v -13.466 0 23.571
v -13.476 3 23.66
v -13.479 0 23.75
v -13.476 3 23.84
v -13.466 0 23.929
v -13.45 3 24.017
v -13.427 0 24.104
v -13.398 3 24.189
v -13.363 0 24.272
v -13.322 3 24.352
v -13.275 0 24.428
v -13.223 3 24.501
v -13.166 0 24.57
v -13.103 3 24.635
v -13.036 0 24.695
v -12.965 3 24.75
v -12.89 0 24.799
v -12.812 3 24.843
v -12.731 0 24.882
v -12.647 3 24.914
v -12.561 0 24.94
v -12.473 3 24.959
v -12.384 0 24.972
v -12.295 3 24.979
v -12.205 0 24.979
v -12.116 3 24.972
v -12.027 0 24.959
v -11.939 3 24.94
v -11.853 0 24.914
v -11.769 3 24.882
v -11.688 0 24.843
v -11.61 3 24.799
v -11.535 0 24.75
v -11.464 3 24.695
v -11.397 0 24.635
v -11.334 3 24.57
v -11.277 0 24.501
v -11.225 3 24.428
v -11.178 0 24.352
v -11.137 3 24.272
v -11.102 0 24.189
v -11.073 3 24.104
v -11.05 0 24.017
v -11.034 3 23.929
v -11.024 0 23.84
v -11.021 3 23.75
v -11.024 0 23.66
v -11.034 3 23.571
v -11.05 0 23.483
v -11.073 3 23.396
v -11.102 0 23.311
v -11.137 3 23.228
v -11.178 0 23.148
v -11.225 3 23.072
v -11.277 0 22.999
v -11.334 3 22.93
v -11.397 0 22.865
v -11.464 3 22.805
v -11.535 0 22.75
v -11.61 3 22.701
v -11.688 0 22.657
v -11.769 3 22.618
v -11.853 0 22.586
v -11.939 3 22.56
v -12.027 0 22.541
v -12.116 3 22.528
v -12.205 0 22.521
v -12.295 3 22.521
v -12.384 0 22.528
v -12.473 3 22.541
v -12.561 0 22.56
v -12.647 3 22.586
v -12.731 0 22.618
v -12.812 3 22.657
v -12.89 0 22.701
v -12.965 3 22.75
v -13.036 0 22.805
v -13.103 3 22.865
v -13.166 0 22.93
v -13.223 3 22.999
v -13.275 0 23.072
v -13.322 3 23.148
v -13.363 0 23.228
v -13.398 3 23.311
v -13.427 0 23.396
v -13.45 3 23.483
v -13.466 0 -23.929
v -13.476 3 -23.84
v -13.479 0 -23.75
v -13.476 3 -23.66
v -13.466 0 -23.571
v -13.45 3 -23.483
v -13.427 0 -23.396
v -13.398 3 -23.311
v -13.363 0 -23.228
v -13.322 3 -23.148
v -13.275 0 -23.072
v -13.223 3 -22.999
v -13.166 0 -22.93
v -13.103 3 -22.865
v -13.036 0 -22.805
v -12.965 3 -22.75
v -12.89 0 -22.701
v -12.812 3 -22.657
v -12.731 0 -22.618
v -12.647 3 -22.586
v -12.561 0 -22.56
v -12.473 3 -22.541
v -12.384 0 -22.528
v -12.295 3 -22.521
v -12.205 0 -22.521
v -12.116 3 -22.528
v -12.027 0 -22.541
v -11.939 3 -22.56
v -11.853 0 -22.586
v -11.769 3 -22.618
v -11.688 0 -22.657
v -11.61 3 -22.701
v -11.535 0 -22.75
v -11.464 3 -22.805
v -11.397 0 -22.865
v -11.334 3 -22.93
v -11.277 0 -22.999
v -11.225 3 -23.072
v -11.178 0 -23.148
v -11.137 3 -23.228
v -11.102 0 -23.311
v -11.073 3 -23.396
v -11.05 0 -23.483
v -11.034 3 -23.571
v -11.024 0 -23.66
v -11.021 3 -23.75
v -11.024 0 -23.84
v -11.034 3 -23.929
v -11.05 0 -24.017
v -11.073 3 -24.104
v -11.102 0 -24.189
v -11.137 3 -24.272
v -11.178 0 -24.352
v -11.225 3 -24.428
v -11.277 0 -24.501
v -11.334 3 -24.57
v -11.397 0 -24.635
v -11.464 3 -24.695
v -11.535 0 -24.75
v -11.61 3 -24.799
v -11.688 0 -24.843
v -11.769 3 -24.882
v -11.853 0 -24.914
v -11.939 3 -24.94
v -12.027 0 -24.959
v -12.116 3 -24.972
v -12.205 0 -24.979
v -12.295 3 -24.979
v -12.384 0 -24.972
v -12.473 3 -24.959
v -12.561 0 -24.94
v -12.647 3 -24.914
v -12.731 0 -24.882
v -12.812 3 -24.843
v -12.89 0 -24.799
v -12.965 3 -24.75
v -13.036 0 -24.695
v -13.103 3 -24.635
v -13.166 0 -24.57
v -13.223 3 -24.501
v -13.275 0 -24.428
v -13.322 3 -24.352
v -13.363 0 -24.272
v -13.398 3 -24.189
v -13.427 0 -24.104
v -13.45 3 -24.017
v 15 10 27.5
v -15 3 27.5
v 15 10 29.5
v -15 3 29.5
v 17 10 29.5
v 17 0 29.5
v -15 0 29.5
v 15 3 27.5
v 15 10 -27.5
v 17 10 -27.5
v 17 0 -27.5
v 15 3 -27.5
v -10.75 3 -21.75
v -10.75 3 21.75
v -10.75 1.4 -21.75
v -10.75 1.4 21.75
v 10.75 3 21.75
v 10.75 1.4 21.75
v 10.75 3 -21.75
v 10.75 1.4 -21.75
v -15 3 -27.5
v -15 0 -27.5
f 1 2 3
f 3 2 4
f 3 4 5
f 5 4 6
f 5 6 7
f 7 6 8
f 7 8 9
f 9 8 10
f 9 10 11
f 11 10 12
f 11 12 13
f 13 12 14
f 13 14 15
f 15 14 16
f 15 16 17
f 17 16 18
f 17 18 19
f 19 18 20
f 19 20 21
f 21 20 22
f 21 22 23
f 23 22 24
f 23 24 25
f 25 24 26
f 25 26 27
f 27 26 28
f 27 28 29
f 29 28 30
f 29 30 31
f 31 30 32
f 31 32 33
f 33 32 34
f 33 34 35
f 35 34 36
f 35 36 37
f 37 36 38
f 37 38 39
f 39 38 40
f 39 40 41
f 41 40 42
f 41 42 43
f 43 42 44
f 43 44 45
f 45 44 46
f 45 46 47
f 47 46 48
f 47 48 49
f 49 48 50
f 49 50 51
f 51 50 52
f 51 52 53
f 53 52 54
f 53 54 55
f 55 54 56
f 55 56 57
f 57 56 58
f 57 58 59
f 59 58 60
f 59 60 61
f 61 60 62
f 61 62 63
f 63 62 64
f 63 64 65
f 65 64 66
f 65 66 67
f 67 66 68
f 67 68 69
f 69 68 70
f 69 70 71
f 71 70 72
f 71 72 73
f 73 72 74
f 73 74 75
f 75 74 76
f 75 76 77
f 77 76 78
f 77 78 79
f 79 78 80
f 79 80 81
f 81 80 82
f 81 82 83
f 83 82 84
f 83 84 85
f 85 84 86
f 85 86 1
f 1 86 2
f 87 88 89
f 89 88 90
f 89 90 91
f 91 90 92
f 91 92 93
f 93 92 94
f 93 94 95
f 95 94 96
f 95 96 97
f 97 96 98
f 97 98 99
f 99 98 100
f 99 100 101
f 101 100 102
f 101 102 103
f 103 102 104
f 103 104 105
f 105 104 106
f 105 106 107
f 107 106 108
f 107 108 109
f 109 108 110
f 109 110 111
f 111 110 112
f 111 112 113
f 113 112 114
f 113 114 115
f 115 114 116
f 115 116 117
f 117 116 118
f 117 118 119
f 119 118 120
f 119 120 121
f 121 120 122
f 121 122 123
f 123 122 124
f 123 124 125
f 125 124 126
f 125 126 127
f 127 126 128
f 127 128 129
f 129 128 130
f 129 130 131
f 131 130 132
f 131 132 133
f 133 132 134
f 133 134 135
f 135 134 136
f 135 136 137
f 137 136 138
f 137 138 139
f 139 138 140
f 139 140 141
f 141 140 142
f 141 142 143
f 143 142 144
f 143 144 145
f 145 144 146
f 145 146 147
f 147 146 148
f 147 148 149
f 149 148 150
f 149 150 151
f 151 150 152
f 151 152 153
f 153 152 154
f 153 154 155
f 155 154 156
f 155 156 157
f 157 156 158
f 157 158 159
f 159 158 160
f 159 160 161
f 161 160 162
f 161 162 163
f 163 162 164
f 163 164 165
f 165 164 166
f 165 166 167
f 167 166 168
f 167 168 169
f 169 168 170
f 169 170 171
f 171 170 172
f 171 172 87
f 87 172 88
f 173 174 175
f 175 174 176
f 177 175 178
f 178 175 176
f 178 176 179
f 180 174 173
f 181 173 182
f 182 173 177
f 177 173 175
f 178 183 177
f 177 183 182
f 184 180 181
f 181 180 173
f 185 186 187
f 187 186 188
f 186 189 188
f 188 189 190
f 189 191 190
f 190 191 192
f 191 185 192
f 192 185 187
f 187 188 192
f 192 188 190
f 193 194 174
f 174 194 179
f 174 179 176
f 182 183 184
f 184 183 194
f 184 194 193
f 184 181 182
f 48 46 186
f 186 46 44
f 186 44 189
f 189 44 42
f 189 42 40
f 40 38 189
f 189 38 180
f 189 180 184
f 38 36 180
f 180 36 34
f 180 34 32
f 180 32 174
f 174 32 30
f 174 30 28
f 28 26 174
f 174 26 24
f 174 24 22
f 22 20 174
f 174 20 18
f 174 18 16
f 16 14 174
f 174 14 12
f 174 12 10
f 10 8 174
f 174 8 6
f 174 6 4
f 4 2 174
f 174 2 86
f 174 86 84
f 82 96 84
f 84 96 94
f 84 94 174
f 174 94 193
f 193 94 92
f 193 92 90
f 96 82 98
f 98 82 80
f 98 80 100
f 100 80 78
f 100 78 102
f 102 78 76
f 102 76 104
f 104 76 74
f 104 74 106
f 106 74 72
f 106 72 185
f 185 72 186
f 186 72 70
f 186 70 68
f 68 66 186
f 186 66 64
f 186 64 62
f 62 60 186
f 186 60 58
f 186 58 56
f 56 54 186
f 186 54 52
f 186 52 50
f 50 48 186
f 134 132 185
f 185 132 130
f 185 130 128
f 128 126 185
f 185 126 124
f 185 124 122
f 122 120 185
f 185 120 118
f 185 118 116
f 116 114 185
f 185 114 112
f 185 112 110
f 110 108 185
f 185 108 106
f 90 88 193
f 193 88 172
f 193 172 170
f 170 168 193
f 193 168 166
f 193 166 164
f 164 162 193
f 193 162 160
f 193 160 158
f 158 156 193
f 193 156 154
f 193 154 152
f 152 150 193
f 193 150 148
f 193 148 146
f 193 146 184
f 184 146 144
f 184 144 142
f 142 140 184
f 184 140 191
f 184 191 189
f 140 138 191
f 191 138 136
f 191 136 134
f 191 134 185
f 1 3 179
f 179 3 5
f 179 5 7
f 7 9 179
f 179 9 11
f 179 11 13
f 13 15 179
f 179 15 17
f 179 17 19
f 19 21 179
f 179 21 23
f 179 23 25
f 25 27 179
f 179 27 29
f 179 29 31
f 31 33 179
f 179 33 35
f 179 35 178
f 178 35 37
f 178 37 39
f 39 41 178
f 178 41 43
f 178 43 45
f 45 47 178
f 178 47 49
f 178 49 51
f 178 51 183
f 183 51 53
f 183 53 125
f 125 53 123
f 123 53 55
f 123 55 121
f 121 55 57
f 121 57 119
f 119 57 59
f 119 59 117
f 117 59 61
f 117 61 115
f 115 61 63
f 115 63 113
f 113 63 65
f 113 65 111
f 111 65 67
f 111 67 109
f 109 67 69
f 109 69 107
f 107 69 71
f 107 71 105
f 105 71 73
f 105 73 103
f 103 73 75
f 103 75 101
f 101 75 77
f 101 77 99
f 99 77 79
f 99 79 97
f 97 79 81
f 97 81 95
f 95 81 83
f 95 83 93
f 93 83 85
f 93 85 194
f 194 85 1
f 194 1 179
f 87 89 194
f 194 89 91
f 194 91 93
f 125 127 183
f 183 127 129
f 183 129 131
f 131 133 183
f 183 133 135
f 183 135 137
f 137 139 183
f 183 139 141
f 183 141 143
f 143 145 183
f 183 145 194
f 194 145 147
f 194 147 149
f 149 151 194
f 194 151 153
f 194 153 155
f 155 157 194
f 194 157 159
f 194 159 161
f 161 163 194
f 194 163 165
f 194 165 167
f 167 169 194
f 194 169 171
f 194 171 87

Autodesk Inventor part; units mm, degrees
ref_plane "YZ Plane" through (0, 0, 0) normal (1, 0, 0) x (0, 1, 0)
ref_plane "XZ Plane" through (0, 0, 0) normal (0, 1, 0) x (-1, 0, 0)
ref_plane "XY Plane" through (0, 0, 0) normal (0, 0, 1) x (1, 0, 0)
sketch "Sketch1" plane through (0, 0, 0) normal (0, 1, 0) x (-1, 0, 0)
  line L0 (-15, -27.5) -> (15, -27.5)
  line L1 (15, -27.5) -> (15, 27.5)
  line L2 (15, 27.5) -> (-15, 27.5)
  line L3 (-15, 27.5) -> (-15, -27.5)
  line L4 (-15, -27.5) -> (15, 27.5) construction
  line L5 (15, -27.5) -> (-15, 27.5) construction
  point P0 (0, 0)
  dimension "d0" = 55
  dimension "d1" = 30
extrude "Extrusion1" add sketch "Sketch1" along normal blind 3
sketch "Sketch2" plane through (0, 3, 0) normal (0, 1, 0) x (1, 0, 0)
  line L0 (10.75, 21.75) -> (-10.75, 21.75)
  line L1 (-10.75, 21.75) -> (-10.75, -21.75)
  line L2 (-10.75, -21.75) -> (10.75, -21.75)
  line L3 (10.75, -21.75) -> (10.75, 21.75)
  line L4 (10.75, 21.75) -> (-10.75, -21.75) construction
  line L5 (-10.75, 21.75) -> (10.75, -21.75) construction
  point P0 (0, 0)
  dimension "d4" = 43.5
  dimension "d5" = 21.5
extrude "Extrusion2" cut sketch "Sketch2" against normal blind 1.6
sketch "Sketch3" plane through (15, 0, 27.5) normal (1, 0, 0) x (0, 0, -1)
  line L0 (55, 0) -> (0, 0) projected
  line L1 (0, 0) -> (55, 0)
  line L2 (55, 0) -> (55, 10)
  line L3 (55, 10) -> (0, 10)
  line L4 (0, 10) -> (0, 0)
  line L5 (55, 0) -> (55, 3) projected
  point P0 (27.5, 0)
  dimension "d8" = 10
extrude "Extrusion3" add sketch "Sketch3" along normal blind 2
sketch "Sketch4" plane through (-15, 0, 27.5) normal (0, 0, 1) x (1, 0, 0)
  line L0 (0, 0) -> (32, 0) projected
  line L1 (32, 10) -> (32, 0) projected
  line L2 (30, 10) -> (32, 10) projected
  line L3 (30, 10) -> (30, 3) projected
  line L4 (0, 3) -> (30, 3) projected
  line L5 (0, 0) -> (0, 3) projected
  line L6 (0, 3) -> (30, 3) projected
  line L7 (30, 10) -> (32, 10) projected
  line L8 (0, 3) -> (30, 10)
  point P0 (15, 0)
extrude "Extrusion4" add sketch "Sketch4" along normal blind 2
sketch "Sketch5" plane through (0, 3, 0) normal (0, 1, 0) x (1, 0, 0)
  line L0 (12.25, 23.75) -> (-12.25, 23.75)
  line L1 (-12.25, 23.75) -> (-12.25, -23.75)
  line L2 (-12.25, -23.75) -> (12.25, -23.75)
  line L3 (12.25, -23.75) -> (12.25, 23.75)
  line L4 (12.25, 23.75) -> (-12.25, -23.75) construction
  line L5 (-12.25, 23.75) -> (12.25, -23.75) construction
  line L6 (-10.75, -21.75) -> (-10.75, 21.75) projected
  line L7 (10.75, -21.75) -> (-10.75, -21.75) projected
  point P0 (0, 0)
  dimension "d13" = 1.5
  dimension "d14" = 2
hole "Hole1" at (-12.25, 3, 23.75) at (-12.25, 3, -23.75) direction (0, -1, 0) diameter 2.459 end through all thread size "M3x0.5" class "6H" standard "ANSI Metric M Profile"
properties part number "Buck_Bracket"
